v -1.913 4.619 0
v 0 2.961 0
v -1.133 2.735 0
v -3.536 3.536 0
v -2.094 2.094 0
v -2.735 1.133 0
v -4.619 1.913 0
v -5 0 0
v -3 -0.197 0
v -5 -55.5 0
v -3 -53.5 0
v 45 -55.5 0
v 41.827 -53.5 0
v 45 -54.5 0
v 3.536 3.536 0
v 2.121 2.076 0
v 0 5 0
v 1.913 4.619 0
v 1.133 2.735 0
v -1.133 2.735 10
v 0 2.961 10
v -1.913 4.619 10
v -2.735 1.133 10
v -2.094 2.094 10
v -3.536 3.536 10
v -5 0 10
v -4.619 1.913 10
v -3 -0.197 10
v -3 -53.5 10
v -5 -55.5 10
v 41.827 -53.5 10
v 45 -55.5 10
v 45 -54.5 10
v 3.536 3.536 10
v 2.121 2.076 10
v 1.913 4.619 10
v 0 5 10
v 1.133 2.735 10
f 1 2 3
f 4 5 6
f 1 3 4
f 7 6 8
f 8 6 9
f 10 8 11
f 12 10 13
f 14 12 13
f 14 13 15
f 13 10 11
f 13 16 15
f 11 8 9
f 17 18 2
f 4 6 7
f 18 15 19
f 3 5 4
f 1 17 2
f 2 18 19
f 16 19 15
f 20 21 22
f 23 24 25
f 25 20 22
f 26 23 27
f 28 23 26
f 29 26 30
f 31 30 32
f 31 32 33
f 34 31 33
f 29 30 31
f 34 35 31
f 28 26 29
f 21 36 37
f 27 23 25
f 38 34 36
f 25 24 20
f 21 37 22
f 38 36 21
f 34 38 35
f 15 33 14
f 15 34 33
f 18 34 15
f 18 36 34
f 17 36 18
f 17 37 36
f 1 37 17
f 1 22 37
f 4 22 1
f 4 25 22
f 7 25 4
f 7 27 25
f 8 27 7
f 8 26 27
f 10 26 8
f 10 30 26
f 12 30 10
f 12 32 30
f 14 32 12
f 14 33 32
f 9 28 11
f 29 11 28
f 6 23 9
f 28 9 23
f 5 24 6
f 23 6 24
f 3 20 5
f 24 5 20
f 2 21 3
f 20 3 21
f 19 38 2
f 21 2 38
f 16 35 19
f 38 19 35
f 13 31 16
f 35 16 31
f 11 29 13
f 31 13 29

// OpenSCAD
linear_extrude(10)
difference(){
hull(){
circle(d=10);
translate([20,-55,0])
square([50,1],center=true);
}
offset(-2)
hull(){
circle(d=10);
translate([20,-55,0])
square([50,1],center=true);
}
}
